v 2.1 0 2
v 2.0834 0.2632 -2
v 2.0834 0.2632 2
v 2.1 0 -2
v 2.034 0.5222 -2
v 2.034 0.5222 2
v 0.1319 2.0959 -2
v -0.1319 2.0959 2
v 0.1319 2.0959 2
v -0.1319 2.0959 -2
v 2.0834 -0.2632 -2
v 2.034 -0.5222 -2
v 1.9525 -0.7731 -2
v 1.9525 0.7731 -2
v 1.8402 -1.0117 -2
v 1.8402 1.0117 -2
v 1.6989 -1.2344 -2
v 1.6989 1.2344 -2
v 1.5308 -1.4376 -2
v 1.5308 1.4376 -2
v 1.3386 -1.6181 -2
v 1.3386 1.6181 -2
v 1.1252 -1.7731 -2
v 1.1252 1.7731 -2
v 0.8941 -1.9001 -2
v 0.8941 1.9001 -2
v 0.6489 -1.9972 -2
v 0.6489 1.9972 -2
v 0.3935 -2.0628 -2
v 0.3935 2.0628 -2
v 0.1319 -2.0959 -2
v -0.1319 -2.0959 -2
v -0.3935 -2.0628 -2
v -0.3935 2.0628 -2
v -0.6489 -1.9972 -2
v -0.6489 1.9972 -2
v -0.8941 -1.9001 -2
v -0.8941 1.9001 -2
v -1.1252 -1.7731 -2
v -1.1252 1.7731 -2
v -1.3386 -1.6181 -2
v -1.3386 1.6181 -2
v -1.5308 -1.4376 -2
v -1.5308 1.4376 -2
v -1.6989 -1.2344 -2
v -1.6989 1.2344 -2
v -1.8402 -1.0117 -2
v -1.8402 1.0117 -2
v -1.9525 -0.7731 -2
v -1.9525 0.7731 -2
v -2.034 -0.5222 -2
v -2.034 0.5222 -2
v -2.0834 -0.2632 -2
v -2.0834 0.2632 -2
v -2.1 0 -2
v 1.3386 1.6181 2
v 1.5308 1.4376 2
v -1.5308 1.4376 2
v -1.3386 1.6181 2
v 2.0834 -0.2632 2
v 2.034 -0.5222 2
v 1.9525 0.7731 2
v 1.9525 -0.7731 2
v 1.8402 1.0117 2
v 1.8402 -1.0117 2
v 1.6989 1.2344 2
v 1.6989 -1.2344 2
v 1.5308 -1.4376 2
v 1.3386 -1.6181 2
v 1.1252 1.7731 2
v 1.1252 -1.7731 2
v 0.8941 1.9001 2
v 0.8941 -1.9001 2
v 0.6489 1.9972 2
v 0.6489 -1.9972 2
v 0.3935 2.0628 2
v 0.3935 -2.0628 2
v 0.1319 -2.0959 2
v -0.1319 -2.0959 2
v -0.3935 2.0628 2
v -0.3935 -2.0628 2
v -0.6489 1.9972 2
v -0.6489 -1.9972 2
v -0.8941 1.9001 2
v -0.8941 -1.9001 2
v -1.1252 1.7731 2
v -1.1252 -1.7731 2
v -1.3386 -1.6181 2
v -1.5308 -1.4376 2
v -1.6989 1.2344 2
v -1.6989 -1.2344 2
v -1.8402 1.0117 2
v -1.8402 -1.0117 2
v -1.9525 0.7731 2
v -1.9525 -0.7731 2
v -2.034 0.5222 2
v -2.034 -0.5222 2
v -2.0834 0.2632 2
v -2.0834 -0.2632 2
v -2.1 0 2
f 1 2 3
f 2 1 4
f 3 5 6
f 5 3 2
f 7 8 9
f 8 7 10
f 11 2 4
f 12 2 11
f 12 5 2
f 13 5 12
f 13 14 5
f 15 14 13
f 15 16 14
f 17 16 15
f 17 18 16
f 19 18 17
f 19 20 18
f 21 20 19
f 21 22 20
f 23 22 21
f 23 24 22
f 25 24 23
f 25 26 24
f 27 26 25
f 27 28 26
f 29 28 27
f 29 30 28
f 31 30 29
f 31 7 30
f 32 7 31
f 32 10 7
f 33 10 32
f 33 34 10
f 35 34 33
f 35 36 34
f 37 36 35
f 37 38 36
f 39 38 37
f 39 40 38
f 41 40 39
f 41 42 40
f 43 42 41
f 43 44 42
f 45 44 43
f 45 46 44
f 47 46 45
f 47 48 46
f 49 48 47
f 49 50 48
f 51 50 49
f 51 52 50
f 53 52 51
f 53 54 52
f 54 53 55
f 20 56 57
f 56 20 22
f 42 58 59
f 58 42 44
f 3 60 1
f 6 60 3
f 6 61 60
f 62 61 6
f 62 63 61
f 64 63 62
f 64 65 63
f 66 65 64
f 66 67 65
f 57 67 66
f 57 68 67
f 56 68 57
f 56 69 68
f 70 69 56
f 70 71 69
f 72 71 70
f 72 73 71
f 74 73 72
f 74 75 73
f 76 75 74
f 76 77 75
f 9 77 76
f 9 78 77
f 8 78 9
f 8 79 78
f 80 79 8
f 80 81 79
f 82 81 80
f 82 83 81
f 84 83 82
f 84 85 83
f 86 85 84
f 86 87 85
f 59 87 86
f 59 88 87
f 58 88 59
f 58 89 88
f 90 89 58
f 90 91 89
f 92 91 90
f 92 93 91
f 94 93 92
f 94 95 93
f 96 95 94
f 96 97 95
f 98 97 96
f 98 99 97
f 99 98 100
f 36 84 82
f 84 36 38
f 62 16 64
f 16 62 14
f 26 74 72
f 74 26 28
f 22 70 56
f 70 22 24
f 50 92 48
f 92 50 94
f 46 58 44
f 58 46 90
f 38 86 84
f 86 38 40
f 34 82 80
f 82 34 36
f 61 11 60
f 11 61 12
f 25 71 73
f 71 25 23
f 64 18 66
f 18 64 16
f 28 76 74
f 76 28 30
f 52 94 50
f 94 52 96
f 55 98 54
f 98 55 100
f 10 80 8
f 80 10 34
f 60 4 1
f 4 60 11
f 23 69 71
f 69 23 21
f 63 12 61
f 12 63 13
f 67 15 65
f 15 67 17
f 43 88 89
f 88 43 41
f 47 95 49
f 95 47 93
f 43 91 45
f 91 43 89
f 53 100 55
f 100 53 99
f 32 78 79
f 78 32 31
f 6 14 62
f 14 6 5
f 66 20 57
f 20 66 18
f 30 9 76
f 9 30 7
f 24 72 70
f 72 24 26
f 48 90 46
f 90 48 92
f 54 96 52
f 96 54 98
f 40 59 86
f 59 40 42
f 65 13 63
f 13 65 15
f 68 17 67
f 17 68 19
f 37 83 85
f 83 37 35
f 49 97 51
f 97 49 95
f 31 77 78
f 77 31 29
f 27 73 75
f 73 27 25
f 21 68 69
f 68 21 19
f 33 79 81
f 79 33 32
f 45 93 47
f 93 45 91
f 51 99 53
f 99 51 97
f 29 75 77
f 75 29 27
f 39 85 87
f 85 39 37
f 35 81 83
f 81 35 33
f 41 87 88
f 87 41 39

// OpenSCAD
$fn = 50;


difference() {
	union() {
		translate(v = [0, 0, -2.0000000000]) {
			cylinder(h = 4, r = 2.1000000000);
		}
	}
	union() {
		translate(v = [0, 0, -100.0000000000]) {
			cylinder(h = 200, r = 0);
		}
	}
}
